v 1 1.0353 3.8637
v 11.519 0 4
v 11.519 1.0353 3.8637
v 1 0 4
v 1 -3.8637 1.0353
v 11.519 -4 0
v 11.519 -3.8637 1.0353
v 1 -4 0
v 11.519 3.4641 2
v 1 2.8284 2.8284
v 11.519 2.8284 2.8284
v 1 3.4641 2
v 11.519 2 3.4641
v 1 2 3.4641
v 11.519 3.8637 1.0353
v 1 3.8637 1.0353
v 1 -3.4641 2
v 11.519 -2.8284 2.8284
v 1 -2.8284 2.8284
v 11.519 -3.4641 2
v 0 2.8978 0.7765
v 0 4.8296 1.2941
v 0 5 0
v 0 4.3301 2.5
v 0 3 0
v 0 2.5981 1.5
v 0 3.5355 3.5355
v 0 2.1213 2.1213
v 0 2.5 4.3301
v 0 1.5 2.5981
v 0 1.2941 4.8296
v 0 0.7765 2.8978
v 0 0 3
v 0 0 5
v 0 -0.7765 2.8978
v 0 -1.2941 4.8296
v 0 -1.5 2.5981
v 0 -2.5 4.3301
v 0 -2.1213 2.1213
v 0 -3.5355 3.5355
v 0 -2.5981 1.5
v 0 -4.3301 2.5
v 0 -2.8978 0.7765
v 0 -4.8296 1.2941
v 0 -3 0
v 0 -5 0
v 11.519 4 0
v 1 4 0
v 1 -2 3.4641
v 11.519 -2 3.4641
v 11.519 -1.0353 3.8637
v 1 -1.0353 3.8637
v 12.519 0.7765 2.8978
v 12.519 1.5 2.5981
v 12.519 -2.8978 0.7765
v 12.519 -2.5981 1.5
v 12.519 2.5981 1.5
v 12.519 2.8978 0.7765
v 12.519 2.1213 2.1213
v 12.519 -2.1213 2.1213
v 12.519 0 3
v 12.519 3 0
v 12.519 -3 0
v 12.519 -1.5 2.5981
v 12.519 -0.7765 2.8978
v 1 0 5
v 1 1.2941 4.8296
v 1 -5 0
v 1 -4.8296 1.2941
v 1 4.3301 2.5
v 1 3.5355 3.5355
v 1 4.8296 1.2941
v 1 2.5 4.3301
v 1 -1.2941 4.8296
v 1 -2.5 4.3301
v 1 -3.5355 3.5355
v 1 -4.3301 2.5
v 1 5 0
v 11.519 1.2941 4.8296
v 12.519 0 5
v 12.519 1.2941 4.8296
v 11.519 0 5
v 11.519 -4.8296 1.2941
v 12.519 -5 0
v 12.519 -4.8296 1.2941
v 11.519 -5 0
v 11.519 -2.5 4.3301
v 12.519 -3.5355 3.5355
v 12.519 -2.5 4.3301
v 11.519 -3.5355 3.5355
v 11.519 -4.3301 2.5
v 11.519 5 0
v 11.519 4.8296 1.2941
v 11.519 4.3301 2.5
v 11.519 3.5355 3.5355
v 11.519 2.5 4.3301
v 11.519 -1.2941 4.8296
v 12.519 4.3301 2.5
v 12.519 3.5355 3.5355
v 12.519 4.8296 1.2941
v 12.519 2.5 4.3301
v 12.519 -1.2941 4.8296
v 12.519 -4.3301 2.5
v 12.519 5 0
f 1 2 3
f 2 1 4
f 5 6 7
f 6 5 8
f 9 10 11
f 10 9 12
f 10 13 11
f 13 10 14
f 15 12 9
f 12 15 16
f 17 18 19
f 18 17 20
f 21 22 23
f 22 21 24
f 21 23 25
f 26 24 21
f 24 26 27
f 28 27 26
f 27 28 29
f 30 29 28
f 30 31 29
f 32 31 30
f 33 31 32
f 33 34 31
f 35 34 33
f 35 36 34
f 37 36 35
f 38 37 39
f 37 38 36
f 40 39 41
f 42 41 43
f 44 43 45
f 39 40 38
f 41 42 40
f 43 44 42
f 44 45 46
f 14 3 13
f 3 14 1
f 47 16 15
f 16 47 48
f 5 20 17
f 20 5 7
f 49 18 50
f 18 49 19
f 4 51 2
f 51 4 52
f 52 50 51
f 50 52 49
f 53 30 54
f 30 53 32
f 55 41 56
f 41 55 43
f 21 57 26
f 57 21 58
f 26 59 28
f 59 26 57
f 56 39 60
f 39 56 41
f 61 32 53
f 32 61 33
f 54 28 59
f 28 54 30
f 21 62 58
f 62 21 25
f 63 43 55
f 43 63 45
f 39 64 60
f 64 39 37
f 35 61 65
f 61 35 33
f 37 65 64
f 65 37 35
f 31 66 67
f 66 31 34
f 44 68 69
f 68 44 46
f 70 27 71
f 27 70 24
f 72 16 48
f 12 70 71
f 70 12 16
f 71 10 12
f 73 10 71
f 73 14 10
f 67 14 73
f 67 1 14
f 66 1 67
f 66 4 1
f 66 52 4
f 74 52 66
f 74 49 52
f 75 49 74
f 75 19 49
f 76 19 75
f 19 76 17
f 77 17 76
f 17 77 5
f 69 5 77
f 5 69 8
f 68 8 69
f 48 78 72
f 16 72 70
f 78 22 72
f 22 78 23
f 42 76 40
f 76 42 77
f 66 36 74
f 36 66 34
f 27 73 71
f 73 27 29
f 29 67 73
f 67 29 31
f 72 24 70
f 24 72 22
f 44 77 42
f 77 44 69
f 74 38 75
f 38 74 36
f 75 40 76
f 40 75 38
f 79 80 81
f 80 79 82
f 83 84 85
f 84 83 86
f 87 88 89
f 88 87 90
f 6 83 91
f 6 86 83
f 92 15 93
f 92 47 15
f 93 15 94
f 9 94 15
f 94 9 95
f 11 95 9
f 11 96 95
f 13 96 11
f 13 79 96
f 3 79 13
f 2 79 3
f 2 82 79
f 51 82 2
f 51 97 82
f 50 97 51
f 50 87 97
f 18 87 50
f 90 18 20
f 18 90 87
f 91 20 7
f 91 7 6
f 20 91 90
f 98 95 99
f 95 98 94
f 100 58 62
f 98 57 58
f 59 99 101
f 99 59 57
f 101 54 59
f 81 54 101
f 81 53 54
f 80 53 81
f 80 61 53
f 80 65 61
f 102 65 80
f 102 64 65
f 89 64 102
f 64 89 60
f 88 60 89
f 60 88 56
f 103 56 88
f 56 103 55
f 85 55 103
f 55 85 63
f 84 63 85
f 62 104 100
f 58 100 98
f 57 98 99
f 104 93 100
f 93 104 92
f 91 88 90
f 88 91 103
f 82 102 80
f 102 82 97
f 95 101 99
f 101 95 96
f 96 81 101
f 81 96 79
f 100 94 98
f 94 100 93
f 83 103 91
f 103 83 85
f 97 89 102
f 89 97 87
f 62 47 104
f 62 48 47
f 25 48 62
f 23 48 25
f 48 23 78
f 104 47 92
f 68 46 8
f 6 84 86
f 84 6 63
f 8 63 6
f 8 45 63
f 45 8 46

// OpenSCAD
// file: ../build_environments.scad
// build_environments.scad: modules to build level sections
//

module pool(diameter=10.0, wall_height=2.0, step_width=3.0, connections=[])
{
    difference() {
        union() {
        difference() {
            cylinder(h=0.5,r1=diameter+step_width,r2=diameter+step_width,$fn=48);
            translate([0,0,-0.1])
                cylinder(h=0.7,r1=diameter,r2=diameter,$fn=48);
        }
        difference() {
            cylinder(h=wall_height,r1=diameter+step_width+1.0,r2=diameter+step_width+1.0,$fn=48);
            translate([0,0,-0.1])
                cylinder(h=wall_height+0.2,r1=diameter+step_width,r2=diameter+step_width,$fn=48);
        }
        }
    
        for (c = connections)
        {
            rotate([0,90,0]) {
                angle = atan2(c[1],c[0]);
                rotate([-angle,0,0]) {
                    cylinder(h=diameter+5.0,r1=c[2],r2=c[2],$fn=48);
                }
            }
        }
    }
}

module straight(length=10.0, width=2.0, dy1=0.0, dy2=0.0, dz=0.0)
{
    dims = [0, 0, 0, 0, 0, (dz/length)];
    matrix = [
        [ 1, dims[0], dims[1], 0 ],
        [ dims[2], 1, dims[4], 0 ],
        [ dims[5], dims[3], 1, 0 ],
        [ 0, 0, 0, 1 ]
    ];
    multmatrix(matrix)
    difference() {
        translate([dy1,0,0])
        union() {
            rotate([0,90,0]) {
                difference() {
                    cylinder(h=(length-dy1-dy2),r1=width+1.0,r2=width+1.0,$fn=24);
                    translate([0,0,-0.1])
                        cylinder(h=(length-dy1-dy2+0.2),r1=width,r2=width,$fn=24);
                }
                difference() {
                    cylinder(h=1.0,r1=width+2.0,r2=width+2.0,$fn=24);
                    translate([0,0,-0.1])
                        cylinder(h=1.2,r1=width,r2=width,$fn=24);
                }
                translate([0,0,(length-dy1-dy2)-1.0]) {
                    difference() {
                        cylinder(h=1.0,r1=width+2.0,r2=width+2.0,$fn=24);
                        translate([0,0,-0.1])
                            cylinder(h=1.2,r1=width,r2=width,$fn=24);
                    }
                }
            }
        }
        translate([0,0,-(2*width+4.0)/2])
            cube([3*length,3*length,2*width+4.0],center=true);
    }
}

module curve(p0=[0,0], center=[0,0], dir=1, angle=0.0, width=2.0)
{
    radius = sqrt((p0[0]-center[0])*(p0[0]-center[0]) + (p0[1]-center[1])*(p0[1]-center[1]));
    if (dir == 0) {
        difference() {
            rotate([0,0,-90])
            difference() {
                rotate_extrude(angle = angle, convexity = 10, $fn=32)
                    translate([radius, 0, 0])
                        circle(r = width+1.0,$fn=24);
                rotate([0,0,-1.0])
                    rotate_extrude(angle = angle+2.0, convexity = 10, $fn=32)
                        translate([radius, 0, 0])
                            circle(r = width,$fn=24);
            }
            translate([0,0,-(2*width+4.0)/2])
                cube([5*radius,5*radius,2*width+4.0],center=true);
        }
    }
    else {
        difference() {
            rotate([0,0,90])
            difference() {
                rotate_extrude(angle = -angle, convexity = 10, $fn=32)
                    translate([radius, 0, 0])
                        circle(r = width+1.0,$fn=24);
                rotate([0,0,1.0])
                    rotate_extrude(angle = -angle-2.0, convexity = 10, $fn=32)
                        translate([radius, 0, 0])
                            circle(r = width,$fn=24);
            }
            translate([0,0,-(2*width+4.0)/2])
                cube([5*radius,5*radius,2*width+4.0],center=true);
        }
    }

}

// test pool
//pool(diameter=12.0000, wall_height=3.0000, step_width=3.0000, connections=[[0.0000,-26.0000,2.0000], [23.6074,0.0000,2.0000]]);

// test straight, slope
//straight(length=26.0000, width=2.0000, dy1=11.8322, dy2=6.7082, dz=0.0000);
//straight(length=29.1549, width=12.0000, dy1=0.0000, dy2=0.0000, dz=-15.0000);

// test curve
//curve(p0=[23.6074, 0.0000], center=[23.6074, 5.0000], dir=0, angle=60.1011, width=2.0000);
//curve(p0=[33.6426, 12.4219], center=[37.9771, 9.9295], dir=1, angle=120.4627, width=2.0000);
// main file
use <../build_environments.scad>;
straight(length=12.5190, width=3.0000, dy1=0.0000, dy2=0.0000, dz=0.0000);
